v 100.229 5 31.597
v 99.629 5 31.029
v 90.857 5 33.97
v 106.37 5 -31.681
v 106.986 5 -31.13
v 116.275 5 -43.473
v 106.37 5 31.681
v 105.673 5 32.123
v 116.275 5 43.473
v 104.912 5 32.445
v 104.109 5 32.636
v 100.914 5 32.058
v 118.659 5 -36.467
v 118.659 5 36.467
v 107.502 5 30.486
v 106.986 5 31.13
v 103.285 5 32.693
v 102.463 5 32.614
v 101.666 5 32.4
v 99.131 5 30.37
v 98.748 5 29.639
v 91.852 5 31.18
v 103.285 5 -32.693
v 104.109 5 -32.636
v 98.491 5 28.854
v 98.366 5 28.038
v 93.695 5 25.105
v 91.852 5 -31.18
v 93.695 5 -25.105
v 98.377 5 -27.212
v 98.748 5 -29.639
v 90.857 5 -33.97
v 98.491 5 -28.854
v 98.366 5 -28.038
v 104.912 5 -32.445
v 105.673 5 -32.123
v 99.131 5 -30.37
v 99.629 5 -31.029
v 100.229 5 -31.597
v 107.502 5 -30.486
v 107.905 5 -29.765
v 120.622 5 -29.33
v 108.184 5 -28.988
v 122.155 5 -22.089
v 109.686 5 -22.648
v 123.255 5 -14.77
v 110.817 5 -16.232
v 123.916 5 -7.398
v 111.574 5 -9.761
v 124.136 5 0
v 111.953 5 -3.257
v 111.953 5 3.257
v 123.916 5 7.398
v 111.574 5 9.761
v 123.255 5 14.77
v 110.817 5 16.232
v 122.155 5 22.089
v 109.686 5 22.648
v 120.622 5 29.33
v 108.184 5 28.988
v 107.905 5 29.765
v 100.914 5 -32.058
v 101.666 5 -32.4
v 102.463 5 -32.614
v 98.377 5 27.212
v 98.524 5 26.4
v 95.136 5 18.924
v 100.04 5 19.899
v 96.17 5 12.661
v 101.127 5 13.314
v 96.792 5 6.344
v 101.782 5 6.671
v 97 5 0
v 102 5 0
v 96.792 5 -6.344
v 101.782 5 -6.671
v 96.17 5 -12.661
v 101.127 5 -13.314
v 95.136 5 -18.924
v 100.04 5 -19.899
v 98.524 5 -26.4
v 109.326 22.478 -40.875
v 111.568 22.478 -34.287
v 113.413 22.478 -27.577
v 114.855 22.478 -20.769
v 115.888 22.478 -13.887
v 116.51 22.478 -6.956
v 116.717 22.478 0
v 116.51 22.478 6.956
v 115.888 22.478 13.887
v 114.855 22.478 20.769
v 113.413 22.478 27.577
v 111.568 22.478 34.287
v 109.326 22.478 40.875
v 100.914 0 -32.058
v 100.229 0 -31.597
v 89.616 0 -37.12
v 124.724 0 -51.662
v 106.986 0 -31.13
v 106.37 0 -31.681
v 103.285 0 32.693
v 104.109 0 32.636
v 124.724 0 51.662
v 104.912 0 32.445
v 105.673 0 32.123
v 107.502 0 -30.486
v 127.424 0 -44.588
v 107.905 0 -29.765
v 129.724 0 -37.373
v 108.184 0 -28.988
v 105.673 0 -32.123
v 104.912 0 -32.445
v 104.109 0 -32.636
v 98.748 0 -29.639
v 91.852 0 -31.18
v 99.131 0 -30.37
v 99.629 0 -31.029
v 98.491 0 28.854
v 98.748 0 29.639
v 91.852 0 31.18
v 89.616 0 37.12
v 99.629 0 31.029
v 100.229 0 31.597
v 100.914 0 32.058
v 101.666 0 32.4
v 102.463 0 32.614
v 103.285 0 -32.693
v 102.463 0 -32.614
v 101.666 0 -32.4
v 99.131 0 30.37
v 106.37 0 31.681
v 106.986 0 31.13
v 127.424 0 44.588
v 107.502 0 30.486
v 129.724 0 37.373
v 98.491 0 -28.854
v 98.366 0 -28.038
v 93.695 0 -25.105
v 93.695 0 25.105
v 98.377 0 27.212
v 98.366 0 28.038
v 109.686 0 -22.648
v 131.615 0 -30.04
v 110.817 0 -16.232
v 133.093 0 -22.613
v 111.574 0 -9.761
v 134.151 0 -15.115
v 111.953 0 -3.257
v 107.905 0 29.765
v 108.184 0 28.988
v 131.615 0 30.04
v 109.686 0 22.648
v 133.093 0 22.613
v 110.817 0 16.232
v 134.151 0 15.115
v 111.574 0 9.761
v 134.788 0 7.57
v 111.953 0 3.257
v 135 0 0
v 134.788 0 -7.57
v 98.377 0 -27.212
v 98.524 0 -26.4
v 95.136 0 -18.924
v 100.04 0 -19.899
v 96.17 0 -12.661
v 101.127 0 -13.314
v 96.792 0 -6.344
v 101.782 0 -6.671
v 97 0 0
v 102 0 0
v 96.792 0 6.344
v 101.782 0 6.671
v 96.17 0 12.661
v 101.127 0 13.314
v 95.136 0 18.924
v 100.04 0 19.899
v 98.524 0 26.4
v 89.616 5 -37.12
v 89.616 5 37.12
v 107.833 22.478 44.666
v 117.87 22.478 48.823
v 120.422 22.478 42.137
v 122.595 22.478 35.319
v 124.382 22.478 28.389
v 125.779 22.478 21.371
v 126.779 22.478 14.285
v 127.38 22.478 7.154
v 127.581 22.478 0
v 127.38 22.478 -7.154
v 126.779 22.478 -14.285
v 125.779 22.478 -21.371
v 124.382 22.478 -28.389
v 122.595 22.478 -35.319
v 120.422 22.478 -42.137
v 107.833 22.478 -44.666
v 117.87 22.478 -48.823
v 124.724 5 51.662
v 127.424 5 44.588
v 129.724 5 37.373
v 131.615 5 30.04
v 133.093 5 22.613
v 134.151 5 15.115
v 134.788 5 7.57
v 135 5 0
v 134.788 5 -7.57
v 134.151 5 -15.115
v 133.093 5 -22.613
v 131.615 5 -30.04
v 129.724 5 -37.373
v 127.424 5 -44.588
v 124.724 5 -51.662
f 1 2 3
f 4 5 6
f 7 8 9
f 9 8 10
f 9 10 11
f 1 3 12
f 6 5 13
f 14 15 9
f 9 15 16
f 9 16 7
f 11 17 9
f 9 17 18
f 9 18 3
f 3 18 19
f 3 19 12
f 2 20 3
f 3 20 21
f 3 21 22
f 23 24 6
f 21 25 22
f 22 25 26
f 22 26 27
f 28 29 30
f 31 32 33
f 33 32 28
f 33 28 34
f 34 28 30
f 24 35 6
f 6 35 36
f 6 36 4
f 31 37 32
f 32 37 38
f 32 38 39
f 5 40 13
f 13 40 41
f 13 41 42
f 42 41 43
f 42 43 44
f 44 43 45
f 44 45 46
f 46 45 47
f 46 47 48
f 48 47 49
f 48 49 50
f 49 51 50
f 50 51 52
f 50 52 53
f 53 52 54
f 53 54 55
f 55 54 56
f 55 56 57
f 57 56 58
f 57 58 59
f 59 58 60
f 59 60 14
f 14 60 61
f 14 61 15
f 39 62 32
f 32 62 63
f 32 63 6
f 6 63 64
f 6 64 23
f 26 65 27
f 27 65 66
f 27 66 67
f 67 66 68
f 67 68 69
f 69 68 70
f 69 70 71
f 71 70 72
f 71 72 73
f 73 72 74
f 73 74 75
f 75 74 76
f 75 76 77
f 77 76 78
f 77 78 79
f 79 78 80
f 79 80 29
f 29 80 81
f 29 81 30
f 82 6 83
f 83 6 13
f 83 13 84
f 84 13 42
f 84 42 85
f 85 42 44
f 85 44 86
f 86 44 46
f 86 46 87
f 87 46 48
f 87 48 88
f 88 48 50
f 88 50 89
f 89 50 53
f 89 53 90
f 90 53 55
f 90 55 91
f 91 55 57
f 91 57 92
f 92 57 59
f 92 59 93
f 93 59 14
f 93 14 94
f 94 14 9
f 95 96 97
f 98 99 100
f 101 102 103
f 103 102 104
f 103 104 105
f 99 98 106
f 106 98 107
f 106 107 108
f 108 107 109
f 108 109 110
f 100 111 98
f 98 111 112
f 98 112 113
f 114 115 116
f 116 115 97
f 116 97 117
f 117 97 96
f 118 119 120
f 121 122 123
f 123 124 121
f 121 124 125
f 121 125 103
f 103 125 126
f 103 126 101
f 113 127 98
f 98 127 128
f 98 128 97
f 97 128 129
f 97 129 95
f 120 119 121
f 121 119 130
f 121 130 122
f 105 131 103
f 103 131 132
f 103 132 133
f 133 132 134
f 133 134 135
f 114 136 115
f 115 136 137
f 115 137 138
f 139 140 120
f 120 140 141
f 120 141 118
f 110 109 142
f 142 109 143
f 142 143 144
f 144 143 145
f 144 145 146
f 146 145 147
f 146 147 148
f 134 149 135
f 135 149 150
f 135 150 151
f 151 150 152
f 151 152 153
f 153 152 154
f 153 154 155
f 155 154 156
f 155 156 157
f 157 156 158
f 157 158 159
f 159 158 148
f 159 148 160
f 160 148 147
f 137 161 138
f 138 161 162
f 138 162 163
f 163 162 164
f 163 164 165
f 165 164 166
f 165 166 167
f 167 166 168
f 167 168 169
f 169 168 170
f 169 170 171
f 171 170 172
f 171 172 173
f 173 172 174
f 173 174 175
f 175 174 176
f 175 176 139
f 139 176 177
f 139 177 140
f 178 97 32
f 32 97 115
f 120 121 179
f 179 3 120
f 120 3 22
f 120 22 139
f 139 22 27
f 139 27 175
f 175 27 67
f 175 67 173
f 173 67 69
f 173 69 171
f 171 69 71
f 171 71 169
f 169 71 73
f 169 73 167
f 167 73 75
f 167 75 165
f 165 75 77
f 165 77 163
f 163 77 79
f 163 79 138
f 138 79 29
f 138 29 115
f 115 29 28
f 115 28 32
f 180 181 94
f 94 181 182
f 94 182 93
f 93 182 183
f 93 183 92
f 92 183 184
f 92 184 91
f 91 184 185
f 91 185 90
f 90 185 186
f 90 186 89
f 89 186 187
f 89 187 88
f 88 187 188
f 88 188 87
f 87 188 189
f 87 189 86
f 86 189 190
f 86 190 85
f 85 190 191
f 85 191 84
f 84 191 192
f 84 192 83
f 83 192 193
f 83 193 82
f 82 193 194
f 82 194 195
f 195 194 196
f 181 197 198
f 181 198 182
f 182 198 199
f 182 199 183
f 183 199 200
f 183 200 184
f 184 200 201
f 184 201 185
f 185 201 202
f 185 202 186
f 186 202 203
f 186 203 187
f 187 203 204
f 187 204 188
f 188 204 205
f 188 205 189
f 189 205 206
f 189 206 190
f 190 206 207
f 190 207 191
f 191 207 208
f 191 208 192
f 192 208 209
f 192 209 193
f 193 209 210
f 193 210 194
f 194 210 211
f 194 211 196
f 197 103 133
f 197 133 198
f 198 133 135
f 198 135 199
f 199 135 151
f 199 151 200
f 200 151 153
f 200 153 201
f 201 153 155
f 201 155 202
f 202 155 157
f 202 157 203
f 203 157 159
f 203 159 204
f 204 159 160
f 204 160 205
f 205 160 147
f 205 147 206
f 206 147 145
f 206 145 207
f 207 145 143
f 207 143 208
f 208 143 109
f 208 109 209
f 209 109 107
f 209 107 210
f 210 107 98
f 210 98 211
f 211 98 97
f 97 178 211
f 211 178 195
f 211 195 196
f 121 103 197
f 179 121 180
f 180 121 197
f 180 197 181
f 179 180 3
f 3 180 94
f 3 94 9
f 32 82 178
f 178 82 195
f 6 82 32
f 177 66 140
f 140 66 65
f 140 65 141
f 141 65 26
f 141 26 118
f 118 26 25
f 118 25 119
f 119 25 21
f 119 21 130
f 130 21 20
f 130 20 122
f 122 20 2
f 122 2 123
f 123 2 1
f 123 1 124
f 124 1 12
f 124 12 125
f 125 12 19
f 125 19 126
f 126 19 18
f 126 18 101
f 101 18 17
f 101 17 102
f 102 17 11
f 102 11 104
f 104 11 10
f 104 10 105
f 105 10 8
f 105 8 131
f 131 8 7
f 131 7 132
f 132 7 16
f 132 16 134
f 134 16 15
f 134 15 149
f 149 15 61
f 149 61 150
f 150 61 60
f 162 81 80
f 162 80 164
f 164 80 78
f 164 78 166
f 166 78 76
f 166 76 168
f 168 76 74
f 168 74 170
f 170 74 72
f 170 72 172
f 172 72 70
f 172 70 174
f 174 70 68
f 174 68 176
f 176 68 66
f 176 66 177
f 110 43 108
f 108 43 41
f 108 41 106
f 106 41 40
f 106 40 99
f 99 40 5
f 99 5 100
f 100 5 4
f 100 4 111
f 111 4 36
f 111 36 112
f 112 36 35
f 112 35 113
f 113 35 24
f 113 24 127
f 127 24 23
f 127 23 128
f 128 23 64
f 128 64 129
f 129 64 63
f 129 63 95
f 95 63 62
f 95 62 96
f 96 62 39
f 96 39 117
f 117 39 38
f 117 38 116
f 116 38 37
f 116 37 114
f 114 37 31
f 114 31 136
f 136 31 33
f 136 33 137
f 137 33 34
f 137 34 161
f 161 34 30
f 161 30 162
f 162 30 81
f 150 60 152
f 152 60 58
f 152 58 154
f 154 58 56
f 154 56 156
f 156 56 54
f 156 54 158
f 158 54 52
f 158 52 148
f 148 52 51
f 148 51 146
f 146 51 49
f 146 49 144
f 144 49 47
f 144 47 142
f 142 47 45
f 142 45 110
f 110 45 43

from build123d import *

# Parameters (mm, degrees)
REVOLVE1_ANGLE     = 45
REVOLVE2_ANGLE     = 2
CUT_EXTRUDE1_DEPTH = 6


with BuildPart() as part:
    # Sketch1 → Revolve1 (revolve, symmetric)
    with BuildSketch(Plane.XY) as revolve1_sk:
        Polygon((97, 0), (97, 5), (124.136396226, 5), (116.717495749, 22.477834241), (127.581099523, 22.477834241), (135, 5), (135, 0), align=None)
    revolve(axis=Axis((0, 0, 0), (0, 1, 0)), revolution_arc=REVOLVE1_ANGLE / 2)
    revolve(revolve1_sk.sketch, axis=Axis((0, 0, 0), (0, -1, 0)), revolution_arc=REVOLVE1_ANGLE / 2)

    # Sketch2 → Revolve2 (revolve)
    with BuildSketch(Plane(origin=(0, 0, 0), x_dir=(0.923879533, 0, 0.382683432), z_dir=(-0.382683432, 0, 0.923879533))):
        Polygon((97, 5), (116.717495749, 22.477834241), (124.136396226, 5), align=None)
    revolve2 = revolve(axis=Axis((0, 0, 0), (0, 1, 0)), revolution_arc=REVOLVE2_ANGLE)

    # Mirror1: Revolve2 across plane
    add(revolve2.mirror(Plane.XY))

    # Sketch3 → Cut-Extrude1 (cut, through all)
    with BuildSketch(Plane(origin=(0, 5, 0), x_dir=(1, 0, 0), z_dir=(0, 1, 0))):
        with BuildLine():
            ThreePointArc((108.183692544, -28.987733051), (112, 0), (108.183692544, 28.987733051))
            ThreePointArc((108.183692544, 28.987733051), (102.059968187, 32.523266957), (98.524434281, 26.3995426))
            ThreePointArc((98.524434281, 26.3995426), (102, 0), (98.524434281, -26.3995426))
            ThreePointArc((98.524434281, -26.3995426), (102.059968187, -32.523266957), (108.183692544, -28.987733051))
        make_face()
    extrude(amount=-CUT_EXTRUDE1_DEPTH, mode=Mode.SUBTRACT)


solid = part.part
